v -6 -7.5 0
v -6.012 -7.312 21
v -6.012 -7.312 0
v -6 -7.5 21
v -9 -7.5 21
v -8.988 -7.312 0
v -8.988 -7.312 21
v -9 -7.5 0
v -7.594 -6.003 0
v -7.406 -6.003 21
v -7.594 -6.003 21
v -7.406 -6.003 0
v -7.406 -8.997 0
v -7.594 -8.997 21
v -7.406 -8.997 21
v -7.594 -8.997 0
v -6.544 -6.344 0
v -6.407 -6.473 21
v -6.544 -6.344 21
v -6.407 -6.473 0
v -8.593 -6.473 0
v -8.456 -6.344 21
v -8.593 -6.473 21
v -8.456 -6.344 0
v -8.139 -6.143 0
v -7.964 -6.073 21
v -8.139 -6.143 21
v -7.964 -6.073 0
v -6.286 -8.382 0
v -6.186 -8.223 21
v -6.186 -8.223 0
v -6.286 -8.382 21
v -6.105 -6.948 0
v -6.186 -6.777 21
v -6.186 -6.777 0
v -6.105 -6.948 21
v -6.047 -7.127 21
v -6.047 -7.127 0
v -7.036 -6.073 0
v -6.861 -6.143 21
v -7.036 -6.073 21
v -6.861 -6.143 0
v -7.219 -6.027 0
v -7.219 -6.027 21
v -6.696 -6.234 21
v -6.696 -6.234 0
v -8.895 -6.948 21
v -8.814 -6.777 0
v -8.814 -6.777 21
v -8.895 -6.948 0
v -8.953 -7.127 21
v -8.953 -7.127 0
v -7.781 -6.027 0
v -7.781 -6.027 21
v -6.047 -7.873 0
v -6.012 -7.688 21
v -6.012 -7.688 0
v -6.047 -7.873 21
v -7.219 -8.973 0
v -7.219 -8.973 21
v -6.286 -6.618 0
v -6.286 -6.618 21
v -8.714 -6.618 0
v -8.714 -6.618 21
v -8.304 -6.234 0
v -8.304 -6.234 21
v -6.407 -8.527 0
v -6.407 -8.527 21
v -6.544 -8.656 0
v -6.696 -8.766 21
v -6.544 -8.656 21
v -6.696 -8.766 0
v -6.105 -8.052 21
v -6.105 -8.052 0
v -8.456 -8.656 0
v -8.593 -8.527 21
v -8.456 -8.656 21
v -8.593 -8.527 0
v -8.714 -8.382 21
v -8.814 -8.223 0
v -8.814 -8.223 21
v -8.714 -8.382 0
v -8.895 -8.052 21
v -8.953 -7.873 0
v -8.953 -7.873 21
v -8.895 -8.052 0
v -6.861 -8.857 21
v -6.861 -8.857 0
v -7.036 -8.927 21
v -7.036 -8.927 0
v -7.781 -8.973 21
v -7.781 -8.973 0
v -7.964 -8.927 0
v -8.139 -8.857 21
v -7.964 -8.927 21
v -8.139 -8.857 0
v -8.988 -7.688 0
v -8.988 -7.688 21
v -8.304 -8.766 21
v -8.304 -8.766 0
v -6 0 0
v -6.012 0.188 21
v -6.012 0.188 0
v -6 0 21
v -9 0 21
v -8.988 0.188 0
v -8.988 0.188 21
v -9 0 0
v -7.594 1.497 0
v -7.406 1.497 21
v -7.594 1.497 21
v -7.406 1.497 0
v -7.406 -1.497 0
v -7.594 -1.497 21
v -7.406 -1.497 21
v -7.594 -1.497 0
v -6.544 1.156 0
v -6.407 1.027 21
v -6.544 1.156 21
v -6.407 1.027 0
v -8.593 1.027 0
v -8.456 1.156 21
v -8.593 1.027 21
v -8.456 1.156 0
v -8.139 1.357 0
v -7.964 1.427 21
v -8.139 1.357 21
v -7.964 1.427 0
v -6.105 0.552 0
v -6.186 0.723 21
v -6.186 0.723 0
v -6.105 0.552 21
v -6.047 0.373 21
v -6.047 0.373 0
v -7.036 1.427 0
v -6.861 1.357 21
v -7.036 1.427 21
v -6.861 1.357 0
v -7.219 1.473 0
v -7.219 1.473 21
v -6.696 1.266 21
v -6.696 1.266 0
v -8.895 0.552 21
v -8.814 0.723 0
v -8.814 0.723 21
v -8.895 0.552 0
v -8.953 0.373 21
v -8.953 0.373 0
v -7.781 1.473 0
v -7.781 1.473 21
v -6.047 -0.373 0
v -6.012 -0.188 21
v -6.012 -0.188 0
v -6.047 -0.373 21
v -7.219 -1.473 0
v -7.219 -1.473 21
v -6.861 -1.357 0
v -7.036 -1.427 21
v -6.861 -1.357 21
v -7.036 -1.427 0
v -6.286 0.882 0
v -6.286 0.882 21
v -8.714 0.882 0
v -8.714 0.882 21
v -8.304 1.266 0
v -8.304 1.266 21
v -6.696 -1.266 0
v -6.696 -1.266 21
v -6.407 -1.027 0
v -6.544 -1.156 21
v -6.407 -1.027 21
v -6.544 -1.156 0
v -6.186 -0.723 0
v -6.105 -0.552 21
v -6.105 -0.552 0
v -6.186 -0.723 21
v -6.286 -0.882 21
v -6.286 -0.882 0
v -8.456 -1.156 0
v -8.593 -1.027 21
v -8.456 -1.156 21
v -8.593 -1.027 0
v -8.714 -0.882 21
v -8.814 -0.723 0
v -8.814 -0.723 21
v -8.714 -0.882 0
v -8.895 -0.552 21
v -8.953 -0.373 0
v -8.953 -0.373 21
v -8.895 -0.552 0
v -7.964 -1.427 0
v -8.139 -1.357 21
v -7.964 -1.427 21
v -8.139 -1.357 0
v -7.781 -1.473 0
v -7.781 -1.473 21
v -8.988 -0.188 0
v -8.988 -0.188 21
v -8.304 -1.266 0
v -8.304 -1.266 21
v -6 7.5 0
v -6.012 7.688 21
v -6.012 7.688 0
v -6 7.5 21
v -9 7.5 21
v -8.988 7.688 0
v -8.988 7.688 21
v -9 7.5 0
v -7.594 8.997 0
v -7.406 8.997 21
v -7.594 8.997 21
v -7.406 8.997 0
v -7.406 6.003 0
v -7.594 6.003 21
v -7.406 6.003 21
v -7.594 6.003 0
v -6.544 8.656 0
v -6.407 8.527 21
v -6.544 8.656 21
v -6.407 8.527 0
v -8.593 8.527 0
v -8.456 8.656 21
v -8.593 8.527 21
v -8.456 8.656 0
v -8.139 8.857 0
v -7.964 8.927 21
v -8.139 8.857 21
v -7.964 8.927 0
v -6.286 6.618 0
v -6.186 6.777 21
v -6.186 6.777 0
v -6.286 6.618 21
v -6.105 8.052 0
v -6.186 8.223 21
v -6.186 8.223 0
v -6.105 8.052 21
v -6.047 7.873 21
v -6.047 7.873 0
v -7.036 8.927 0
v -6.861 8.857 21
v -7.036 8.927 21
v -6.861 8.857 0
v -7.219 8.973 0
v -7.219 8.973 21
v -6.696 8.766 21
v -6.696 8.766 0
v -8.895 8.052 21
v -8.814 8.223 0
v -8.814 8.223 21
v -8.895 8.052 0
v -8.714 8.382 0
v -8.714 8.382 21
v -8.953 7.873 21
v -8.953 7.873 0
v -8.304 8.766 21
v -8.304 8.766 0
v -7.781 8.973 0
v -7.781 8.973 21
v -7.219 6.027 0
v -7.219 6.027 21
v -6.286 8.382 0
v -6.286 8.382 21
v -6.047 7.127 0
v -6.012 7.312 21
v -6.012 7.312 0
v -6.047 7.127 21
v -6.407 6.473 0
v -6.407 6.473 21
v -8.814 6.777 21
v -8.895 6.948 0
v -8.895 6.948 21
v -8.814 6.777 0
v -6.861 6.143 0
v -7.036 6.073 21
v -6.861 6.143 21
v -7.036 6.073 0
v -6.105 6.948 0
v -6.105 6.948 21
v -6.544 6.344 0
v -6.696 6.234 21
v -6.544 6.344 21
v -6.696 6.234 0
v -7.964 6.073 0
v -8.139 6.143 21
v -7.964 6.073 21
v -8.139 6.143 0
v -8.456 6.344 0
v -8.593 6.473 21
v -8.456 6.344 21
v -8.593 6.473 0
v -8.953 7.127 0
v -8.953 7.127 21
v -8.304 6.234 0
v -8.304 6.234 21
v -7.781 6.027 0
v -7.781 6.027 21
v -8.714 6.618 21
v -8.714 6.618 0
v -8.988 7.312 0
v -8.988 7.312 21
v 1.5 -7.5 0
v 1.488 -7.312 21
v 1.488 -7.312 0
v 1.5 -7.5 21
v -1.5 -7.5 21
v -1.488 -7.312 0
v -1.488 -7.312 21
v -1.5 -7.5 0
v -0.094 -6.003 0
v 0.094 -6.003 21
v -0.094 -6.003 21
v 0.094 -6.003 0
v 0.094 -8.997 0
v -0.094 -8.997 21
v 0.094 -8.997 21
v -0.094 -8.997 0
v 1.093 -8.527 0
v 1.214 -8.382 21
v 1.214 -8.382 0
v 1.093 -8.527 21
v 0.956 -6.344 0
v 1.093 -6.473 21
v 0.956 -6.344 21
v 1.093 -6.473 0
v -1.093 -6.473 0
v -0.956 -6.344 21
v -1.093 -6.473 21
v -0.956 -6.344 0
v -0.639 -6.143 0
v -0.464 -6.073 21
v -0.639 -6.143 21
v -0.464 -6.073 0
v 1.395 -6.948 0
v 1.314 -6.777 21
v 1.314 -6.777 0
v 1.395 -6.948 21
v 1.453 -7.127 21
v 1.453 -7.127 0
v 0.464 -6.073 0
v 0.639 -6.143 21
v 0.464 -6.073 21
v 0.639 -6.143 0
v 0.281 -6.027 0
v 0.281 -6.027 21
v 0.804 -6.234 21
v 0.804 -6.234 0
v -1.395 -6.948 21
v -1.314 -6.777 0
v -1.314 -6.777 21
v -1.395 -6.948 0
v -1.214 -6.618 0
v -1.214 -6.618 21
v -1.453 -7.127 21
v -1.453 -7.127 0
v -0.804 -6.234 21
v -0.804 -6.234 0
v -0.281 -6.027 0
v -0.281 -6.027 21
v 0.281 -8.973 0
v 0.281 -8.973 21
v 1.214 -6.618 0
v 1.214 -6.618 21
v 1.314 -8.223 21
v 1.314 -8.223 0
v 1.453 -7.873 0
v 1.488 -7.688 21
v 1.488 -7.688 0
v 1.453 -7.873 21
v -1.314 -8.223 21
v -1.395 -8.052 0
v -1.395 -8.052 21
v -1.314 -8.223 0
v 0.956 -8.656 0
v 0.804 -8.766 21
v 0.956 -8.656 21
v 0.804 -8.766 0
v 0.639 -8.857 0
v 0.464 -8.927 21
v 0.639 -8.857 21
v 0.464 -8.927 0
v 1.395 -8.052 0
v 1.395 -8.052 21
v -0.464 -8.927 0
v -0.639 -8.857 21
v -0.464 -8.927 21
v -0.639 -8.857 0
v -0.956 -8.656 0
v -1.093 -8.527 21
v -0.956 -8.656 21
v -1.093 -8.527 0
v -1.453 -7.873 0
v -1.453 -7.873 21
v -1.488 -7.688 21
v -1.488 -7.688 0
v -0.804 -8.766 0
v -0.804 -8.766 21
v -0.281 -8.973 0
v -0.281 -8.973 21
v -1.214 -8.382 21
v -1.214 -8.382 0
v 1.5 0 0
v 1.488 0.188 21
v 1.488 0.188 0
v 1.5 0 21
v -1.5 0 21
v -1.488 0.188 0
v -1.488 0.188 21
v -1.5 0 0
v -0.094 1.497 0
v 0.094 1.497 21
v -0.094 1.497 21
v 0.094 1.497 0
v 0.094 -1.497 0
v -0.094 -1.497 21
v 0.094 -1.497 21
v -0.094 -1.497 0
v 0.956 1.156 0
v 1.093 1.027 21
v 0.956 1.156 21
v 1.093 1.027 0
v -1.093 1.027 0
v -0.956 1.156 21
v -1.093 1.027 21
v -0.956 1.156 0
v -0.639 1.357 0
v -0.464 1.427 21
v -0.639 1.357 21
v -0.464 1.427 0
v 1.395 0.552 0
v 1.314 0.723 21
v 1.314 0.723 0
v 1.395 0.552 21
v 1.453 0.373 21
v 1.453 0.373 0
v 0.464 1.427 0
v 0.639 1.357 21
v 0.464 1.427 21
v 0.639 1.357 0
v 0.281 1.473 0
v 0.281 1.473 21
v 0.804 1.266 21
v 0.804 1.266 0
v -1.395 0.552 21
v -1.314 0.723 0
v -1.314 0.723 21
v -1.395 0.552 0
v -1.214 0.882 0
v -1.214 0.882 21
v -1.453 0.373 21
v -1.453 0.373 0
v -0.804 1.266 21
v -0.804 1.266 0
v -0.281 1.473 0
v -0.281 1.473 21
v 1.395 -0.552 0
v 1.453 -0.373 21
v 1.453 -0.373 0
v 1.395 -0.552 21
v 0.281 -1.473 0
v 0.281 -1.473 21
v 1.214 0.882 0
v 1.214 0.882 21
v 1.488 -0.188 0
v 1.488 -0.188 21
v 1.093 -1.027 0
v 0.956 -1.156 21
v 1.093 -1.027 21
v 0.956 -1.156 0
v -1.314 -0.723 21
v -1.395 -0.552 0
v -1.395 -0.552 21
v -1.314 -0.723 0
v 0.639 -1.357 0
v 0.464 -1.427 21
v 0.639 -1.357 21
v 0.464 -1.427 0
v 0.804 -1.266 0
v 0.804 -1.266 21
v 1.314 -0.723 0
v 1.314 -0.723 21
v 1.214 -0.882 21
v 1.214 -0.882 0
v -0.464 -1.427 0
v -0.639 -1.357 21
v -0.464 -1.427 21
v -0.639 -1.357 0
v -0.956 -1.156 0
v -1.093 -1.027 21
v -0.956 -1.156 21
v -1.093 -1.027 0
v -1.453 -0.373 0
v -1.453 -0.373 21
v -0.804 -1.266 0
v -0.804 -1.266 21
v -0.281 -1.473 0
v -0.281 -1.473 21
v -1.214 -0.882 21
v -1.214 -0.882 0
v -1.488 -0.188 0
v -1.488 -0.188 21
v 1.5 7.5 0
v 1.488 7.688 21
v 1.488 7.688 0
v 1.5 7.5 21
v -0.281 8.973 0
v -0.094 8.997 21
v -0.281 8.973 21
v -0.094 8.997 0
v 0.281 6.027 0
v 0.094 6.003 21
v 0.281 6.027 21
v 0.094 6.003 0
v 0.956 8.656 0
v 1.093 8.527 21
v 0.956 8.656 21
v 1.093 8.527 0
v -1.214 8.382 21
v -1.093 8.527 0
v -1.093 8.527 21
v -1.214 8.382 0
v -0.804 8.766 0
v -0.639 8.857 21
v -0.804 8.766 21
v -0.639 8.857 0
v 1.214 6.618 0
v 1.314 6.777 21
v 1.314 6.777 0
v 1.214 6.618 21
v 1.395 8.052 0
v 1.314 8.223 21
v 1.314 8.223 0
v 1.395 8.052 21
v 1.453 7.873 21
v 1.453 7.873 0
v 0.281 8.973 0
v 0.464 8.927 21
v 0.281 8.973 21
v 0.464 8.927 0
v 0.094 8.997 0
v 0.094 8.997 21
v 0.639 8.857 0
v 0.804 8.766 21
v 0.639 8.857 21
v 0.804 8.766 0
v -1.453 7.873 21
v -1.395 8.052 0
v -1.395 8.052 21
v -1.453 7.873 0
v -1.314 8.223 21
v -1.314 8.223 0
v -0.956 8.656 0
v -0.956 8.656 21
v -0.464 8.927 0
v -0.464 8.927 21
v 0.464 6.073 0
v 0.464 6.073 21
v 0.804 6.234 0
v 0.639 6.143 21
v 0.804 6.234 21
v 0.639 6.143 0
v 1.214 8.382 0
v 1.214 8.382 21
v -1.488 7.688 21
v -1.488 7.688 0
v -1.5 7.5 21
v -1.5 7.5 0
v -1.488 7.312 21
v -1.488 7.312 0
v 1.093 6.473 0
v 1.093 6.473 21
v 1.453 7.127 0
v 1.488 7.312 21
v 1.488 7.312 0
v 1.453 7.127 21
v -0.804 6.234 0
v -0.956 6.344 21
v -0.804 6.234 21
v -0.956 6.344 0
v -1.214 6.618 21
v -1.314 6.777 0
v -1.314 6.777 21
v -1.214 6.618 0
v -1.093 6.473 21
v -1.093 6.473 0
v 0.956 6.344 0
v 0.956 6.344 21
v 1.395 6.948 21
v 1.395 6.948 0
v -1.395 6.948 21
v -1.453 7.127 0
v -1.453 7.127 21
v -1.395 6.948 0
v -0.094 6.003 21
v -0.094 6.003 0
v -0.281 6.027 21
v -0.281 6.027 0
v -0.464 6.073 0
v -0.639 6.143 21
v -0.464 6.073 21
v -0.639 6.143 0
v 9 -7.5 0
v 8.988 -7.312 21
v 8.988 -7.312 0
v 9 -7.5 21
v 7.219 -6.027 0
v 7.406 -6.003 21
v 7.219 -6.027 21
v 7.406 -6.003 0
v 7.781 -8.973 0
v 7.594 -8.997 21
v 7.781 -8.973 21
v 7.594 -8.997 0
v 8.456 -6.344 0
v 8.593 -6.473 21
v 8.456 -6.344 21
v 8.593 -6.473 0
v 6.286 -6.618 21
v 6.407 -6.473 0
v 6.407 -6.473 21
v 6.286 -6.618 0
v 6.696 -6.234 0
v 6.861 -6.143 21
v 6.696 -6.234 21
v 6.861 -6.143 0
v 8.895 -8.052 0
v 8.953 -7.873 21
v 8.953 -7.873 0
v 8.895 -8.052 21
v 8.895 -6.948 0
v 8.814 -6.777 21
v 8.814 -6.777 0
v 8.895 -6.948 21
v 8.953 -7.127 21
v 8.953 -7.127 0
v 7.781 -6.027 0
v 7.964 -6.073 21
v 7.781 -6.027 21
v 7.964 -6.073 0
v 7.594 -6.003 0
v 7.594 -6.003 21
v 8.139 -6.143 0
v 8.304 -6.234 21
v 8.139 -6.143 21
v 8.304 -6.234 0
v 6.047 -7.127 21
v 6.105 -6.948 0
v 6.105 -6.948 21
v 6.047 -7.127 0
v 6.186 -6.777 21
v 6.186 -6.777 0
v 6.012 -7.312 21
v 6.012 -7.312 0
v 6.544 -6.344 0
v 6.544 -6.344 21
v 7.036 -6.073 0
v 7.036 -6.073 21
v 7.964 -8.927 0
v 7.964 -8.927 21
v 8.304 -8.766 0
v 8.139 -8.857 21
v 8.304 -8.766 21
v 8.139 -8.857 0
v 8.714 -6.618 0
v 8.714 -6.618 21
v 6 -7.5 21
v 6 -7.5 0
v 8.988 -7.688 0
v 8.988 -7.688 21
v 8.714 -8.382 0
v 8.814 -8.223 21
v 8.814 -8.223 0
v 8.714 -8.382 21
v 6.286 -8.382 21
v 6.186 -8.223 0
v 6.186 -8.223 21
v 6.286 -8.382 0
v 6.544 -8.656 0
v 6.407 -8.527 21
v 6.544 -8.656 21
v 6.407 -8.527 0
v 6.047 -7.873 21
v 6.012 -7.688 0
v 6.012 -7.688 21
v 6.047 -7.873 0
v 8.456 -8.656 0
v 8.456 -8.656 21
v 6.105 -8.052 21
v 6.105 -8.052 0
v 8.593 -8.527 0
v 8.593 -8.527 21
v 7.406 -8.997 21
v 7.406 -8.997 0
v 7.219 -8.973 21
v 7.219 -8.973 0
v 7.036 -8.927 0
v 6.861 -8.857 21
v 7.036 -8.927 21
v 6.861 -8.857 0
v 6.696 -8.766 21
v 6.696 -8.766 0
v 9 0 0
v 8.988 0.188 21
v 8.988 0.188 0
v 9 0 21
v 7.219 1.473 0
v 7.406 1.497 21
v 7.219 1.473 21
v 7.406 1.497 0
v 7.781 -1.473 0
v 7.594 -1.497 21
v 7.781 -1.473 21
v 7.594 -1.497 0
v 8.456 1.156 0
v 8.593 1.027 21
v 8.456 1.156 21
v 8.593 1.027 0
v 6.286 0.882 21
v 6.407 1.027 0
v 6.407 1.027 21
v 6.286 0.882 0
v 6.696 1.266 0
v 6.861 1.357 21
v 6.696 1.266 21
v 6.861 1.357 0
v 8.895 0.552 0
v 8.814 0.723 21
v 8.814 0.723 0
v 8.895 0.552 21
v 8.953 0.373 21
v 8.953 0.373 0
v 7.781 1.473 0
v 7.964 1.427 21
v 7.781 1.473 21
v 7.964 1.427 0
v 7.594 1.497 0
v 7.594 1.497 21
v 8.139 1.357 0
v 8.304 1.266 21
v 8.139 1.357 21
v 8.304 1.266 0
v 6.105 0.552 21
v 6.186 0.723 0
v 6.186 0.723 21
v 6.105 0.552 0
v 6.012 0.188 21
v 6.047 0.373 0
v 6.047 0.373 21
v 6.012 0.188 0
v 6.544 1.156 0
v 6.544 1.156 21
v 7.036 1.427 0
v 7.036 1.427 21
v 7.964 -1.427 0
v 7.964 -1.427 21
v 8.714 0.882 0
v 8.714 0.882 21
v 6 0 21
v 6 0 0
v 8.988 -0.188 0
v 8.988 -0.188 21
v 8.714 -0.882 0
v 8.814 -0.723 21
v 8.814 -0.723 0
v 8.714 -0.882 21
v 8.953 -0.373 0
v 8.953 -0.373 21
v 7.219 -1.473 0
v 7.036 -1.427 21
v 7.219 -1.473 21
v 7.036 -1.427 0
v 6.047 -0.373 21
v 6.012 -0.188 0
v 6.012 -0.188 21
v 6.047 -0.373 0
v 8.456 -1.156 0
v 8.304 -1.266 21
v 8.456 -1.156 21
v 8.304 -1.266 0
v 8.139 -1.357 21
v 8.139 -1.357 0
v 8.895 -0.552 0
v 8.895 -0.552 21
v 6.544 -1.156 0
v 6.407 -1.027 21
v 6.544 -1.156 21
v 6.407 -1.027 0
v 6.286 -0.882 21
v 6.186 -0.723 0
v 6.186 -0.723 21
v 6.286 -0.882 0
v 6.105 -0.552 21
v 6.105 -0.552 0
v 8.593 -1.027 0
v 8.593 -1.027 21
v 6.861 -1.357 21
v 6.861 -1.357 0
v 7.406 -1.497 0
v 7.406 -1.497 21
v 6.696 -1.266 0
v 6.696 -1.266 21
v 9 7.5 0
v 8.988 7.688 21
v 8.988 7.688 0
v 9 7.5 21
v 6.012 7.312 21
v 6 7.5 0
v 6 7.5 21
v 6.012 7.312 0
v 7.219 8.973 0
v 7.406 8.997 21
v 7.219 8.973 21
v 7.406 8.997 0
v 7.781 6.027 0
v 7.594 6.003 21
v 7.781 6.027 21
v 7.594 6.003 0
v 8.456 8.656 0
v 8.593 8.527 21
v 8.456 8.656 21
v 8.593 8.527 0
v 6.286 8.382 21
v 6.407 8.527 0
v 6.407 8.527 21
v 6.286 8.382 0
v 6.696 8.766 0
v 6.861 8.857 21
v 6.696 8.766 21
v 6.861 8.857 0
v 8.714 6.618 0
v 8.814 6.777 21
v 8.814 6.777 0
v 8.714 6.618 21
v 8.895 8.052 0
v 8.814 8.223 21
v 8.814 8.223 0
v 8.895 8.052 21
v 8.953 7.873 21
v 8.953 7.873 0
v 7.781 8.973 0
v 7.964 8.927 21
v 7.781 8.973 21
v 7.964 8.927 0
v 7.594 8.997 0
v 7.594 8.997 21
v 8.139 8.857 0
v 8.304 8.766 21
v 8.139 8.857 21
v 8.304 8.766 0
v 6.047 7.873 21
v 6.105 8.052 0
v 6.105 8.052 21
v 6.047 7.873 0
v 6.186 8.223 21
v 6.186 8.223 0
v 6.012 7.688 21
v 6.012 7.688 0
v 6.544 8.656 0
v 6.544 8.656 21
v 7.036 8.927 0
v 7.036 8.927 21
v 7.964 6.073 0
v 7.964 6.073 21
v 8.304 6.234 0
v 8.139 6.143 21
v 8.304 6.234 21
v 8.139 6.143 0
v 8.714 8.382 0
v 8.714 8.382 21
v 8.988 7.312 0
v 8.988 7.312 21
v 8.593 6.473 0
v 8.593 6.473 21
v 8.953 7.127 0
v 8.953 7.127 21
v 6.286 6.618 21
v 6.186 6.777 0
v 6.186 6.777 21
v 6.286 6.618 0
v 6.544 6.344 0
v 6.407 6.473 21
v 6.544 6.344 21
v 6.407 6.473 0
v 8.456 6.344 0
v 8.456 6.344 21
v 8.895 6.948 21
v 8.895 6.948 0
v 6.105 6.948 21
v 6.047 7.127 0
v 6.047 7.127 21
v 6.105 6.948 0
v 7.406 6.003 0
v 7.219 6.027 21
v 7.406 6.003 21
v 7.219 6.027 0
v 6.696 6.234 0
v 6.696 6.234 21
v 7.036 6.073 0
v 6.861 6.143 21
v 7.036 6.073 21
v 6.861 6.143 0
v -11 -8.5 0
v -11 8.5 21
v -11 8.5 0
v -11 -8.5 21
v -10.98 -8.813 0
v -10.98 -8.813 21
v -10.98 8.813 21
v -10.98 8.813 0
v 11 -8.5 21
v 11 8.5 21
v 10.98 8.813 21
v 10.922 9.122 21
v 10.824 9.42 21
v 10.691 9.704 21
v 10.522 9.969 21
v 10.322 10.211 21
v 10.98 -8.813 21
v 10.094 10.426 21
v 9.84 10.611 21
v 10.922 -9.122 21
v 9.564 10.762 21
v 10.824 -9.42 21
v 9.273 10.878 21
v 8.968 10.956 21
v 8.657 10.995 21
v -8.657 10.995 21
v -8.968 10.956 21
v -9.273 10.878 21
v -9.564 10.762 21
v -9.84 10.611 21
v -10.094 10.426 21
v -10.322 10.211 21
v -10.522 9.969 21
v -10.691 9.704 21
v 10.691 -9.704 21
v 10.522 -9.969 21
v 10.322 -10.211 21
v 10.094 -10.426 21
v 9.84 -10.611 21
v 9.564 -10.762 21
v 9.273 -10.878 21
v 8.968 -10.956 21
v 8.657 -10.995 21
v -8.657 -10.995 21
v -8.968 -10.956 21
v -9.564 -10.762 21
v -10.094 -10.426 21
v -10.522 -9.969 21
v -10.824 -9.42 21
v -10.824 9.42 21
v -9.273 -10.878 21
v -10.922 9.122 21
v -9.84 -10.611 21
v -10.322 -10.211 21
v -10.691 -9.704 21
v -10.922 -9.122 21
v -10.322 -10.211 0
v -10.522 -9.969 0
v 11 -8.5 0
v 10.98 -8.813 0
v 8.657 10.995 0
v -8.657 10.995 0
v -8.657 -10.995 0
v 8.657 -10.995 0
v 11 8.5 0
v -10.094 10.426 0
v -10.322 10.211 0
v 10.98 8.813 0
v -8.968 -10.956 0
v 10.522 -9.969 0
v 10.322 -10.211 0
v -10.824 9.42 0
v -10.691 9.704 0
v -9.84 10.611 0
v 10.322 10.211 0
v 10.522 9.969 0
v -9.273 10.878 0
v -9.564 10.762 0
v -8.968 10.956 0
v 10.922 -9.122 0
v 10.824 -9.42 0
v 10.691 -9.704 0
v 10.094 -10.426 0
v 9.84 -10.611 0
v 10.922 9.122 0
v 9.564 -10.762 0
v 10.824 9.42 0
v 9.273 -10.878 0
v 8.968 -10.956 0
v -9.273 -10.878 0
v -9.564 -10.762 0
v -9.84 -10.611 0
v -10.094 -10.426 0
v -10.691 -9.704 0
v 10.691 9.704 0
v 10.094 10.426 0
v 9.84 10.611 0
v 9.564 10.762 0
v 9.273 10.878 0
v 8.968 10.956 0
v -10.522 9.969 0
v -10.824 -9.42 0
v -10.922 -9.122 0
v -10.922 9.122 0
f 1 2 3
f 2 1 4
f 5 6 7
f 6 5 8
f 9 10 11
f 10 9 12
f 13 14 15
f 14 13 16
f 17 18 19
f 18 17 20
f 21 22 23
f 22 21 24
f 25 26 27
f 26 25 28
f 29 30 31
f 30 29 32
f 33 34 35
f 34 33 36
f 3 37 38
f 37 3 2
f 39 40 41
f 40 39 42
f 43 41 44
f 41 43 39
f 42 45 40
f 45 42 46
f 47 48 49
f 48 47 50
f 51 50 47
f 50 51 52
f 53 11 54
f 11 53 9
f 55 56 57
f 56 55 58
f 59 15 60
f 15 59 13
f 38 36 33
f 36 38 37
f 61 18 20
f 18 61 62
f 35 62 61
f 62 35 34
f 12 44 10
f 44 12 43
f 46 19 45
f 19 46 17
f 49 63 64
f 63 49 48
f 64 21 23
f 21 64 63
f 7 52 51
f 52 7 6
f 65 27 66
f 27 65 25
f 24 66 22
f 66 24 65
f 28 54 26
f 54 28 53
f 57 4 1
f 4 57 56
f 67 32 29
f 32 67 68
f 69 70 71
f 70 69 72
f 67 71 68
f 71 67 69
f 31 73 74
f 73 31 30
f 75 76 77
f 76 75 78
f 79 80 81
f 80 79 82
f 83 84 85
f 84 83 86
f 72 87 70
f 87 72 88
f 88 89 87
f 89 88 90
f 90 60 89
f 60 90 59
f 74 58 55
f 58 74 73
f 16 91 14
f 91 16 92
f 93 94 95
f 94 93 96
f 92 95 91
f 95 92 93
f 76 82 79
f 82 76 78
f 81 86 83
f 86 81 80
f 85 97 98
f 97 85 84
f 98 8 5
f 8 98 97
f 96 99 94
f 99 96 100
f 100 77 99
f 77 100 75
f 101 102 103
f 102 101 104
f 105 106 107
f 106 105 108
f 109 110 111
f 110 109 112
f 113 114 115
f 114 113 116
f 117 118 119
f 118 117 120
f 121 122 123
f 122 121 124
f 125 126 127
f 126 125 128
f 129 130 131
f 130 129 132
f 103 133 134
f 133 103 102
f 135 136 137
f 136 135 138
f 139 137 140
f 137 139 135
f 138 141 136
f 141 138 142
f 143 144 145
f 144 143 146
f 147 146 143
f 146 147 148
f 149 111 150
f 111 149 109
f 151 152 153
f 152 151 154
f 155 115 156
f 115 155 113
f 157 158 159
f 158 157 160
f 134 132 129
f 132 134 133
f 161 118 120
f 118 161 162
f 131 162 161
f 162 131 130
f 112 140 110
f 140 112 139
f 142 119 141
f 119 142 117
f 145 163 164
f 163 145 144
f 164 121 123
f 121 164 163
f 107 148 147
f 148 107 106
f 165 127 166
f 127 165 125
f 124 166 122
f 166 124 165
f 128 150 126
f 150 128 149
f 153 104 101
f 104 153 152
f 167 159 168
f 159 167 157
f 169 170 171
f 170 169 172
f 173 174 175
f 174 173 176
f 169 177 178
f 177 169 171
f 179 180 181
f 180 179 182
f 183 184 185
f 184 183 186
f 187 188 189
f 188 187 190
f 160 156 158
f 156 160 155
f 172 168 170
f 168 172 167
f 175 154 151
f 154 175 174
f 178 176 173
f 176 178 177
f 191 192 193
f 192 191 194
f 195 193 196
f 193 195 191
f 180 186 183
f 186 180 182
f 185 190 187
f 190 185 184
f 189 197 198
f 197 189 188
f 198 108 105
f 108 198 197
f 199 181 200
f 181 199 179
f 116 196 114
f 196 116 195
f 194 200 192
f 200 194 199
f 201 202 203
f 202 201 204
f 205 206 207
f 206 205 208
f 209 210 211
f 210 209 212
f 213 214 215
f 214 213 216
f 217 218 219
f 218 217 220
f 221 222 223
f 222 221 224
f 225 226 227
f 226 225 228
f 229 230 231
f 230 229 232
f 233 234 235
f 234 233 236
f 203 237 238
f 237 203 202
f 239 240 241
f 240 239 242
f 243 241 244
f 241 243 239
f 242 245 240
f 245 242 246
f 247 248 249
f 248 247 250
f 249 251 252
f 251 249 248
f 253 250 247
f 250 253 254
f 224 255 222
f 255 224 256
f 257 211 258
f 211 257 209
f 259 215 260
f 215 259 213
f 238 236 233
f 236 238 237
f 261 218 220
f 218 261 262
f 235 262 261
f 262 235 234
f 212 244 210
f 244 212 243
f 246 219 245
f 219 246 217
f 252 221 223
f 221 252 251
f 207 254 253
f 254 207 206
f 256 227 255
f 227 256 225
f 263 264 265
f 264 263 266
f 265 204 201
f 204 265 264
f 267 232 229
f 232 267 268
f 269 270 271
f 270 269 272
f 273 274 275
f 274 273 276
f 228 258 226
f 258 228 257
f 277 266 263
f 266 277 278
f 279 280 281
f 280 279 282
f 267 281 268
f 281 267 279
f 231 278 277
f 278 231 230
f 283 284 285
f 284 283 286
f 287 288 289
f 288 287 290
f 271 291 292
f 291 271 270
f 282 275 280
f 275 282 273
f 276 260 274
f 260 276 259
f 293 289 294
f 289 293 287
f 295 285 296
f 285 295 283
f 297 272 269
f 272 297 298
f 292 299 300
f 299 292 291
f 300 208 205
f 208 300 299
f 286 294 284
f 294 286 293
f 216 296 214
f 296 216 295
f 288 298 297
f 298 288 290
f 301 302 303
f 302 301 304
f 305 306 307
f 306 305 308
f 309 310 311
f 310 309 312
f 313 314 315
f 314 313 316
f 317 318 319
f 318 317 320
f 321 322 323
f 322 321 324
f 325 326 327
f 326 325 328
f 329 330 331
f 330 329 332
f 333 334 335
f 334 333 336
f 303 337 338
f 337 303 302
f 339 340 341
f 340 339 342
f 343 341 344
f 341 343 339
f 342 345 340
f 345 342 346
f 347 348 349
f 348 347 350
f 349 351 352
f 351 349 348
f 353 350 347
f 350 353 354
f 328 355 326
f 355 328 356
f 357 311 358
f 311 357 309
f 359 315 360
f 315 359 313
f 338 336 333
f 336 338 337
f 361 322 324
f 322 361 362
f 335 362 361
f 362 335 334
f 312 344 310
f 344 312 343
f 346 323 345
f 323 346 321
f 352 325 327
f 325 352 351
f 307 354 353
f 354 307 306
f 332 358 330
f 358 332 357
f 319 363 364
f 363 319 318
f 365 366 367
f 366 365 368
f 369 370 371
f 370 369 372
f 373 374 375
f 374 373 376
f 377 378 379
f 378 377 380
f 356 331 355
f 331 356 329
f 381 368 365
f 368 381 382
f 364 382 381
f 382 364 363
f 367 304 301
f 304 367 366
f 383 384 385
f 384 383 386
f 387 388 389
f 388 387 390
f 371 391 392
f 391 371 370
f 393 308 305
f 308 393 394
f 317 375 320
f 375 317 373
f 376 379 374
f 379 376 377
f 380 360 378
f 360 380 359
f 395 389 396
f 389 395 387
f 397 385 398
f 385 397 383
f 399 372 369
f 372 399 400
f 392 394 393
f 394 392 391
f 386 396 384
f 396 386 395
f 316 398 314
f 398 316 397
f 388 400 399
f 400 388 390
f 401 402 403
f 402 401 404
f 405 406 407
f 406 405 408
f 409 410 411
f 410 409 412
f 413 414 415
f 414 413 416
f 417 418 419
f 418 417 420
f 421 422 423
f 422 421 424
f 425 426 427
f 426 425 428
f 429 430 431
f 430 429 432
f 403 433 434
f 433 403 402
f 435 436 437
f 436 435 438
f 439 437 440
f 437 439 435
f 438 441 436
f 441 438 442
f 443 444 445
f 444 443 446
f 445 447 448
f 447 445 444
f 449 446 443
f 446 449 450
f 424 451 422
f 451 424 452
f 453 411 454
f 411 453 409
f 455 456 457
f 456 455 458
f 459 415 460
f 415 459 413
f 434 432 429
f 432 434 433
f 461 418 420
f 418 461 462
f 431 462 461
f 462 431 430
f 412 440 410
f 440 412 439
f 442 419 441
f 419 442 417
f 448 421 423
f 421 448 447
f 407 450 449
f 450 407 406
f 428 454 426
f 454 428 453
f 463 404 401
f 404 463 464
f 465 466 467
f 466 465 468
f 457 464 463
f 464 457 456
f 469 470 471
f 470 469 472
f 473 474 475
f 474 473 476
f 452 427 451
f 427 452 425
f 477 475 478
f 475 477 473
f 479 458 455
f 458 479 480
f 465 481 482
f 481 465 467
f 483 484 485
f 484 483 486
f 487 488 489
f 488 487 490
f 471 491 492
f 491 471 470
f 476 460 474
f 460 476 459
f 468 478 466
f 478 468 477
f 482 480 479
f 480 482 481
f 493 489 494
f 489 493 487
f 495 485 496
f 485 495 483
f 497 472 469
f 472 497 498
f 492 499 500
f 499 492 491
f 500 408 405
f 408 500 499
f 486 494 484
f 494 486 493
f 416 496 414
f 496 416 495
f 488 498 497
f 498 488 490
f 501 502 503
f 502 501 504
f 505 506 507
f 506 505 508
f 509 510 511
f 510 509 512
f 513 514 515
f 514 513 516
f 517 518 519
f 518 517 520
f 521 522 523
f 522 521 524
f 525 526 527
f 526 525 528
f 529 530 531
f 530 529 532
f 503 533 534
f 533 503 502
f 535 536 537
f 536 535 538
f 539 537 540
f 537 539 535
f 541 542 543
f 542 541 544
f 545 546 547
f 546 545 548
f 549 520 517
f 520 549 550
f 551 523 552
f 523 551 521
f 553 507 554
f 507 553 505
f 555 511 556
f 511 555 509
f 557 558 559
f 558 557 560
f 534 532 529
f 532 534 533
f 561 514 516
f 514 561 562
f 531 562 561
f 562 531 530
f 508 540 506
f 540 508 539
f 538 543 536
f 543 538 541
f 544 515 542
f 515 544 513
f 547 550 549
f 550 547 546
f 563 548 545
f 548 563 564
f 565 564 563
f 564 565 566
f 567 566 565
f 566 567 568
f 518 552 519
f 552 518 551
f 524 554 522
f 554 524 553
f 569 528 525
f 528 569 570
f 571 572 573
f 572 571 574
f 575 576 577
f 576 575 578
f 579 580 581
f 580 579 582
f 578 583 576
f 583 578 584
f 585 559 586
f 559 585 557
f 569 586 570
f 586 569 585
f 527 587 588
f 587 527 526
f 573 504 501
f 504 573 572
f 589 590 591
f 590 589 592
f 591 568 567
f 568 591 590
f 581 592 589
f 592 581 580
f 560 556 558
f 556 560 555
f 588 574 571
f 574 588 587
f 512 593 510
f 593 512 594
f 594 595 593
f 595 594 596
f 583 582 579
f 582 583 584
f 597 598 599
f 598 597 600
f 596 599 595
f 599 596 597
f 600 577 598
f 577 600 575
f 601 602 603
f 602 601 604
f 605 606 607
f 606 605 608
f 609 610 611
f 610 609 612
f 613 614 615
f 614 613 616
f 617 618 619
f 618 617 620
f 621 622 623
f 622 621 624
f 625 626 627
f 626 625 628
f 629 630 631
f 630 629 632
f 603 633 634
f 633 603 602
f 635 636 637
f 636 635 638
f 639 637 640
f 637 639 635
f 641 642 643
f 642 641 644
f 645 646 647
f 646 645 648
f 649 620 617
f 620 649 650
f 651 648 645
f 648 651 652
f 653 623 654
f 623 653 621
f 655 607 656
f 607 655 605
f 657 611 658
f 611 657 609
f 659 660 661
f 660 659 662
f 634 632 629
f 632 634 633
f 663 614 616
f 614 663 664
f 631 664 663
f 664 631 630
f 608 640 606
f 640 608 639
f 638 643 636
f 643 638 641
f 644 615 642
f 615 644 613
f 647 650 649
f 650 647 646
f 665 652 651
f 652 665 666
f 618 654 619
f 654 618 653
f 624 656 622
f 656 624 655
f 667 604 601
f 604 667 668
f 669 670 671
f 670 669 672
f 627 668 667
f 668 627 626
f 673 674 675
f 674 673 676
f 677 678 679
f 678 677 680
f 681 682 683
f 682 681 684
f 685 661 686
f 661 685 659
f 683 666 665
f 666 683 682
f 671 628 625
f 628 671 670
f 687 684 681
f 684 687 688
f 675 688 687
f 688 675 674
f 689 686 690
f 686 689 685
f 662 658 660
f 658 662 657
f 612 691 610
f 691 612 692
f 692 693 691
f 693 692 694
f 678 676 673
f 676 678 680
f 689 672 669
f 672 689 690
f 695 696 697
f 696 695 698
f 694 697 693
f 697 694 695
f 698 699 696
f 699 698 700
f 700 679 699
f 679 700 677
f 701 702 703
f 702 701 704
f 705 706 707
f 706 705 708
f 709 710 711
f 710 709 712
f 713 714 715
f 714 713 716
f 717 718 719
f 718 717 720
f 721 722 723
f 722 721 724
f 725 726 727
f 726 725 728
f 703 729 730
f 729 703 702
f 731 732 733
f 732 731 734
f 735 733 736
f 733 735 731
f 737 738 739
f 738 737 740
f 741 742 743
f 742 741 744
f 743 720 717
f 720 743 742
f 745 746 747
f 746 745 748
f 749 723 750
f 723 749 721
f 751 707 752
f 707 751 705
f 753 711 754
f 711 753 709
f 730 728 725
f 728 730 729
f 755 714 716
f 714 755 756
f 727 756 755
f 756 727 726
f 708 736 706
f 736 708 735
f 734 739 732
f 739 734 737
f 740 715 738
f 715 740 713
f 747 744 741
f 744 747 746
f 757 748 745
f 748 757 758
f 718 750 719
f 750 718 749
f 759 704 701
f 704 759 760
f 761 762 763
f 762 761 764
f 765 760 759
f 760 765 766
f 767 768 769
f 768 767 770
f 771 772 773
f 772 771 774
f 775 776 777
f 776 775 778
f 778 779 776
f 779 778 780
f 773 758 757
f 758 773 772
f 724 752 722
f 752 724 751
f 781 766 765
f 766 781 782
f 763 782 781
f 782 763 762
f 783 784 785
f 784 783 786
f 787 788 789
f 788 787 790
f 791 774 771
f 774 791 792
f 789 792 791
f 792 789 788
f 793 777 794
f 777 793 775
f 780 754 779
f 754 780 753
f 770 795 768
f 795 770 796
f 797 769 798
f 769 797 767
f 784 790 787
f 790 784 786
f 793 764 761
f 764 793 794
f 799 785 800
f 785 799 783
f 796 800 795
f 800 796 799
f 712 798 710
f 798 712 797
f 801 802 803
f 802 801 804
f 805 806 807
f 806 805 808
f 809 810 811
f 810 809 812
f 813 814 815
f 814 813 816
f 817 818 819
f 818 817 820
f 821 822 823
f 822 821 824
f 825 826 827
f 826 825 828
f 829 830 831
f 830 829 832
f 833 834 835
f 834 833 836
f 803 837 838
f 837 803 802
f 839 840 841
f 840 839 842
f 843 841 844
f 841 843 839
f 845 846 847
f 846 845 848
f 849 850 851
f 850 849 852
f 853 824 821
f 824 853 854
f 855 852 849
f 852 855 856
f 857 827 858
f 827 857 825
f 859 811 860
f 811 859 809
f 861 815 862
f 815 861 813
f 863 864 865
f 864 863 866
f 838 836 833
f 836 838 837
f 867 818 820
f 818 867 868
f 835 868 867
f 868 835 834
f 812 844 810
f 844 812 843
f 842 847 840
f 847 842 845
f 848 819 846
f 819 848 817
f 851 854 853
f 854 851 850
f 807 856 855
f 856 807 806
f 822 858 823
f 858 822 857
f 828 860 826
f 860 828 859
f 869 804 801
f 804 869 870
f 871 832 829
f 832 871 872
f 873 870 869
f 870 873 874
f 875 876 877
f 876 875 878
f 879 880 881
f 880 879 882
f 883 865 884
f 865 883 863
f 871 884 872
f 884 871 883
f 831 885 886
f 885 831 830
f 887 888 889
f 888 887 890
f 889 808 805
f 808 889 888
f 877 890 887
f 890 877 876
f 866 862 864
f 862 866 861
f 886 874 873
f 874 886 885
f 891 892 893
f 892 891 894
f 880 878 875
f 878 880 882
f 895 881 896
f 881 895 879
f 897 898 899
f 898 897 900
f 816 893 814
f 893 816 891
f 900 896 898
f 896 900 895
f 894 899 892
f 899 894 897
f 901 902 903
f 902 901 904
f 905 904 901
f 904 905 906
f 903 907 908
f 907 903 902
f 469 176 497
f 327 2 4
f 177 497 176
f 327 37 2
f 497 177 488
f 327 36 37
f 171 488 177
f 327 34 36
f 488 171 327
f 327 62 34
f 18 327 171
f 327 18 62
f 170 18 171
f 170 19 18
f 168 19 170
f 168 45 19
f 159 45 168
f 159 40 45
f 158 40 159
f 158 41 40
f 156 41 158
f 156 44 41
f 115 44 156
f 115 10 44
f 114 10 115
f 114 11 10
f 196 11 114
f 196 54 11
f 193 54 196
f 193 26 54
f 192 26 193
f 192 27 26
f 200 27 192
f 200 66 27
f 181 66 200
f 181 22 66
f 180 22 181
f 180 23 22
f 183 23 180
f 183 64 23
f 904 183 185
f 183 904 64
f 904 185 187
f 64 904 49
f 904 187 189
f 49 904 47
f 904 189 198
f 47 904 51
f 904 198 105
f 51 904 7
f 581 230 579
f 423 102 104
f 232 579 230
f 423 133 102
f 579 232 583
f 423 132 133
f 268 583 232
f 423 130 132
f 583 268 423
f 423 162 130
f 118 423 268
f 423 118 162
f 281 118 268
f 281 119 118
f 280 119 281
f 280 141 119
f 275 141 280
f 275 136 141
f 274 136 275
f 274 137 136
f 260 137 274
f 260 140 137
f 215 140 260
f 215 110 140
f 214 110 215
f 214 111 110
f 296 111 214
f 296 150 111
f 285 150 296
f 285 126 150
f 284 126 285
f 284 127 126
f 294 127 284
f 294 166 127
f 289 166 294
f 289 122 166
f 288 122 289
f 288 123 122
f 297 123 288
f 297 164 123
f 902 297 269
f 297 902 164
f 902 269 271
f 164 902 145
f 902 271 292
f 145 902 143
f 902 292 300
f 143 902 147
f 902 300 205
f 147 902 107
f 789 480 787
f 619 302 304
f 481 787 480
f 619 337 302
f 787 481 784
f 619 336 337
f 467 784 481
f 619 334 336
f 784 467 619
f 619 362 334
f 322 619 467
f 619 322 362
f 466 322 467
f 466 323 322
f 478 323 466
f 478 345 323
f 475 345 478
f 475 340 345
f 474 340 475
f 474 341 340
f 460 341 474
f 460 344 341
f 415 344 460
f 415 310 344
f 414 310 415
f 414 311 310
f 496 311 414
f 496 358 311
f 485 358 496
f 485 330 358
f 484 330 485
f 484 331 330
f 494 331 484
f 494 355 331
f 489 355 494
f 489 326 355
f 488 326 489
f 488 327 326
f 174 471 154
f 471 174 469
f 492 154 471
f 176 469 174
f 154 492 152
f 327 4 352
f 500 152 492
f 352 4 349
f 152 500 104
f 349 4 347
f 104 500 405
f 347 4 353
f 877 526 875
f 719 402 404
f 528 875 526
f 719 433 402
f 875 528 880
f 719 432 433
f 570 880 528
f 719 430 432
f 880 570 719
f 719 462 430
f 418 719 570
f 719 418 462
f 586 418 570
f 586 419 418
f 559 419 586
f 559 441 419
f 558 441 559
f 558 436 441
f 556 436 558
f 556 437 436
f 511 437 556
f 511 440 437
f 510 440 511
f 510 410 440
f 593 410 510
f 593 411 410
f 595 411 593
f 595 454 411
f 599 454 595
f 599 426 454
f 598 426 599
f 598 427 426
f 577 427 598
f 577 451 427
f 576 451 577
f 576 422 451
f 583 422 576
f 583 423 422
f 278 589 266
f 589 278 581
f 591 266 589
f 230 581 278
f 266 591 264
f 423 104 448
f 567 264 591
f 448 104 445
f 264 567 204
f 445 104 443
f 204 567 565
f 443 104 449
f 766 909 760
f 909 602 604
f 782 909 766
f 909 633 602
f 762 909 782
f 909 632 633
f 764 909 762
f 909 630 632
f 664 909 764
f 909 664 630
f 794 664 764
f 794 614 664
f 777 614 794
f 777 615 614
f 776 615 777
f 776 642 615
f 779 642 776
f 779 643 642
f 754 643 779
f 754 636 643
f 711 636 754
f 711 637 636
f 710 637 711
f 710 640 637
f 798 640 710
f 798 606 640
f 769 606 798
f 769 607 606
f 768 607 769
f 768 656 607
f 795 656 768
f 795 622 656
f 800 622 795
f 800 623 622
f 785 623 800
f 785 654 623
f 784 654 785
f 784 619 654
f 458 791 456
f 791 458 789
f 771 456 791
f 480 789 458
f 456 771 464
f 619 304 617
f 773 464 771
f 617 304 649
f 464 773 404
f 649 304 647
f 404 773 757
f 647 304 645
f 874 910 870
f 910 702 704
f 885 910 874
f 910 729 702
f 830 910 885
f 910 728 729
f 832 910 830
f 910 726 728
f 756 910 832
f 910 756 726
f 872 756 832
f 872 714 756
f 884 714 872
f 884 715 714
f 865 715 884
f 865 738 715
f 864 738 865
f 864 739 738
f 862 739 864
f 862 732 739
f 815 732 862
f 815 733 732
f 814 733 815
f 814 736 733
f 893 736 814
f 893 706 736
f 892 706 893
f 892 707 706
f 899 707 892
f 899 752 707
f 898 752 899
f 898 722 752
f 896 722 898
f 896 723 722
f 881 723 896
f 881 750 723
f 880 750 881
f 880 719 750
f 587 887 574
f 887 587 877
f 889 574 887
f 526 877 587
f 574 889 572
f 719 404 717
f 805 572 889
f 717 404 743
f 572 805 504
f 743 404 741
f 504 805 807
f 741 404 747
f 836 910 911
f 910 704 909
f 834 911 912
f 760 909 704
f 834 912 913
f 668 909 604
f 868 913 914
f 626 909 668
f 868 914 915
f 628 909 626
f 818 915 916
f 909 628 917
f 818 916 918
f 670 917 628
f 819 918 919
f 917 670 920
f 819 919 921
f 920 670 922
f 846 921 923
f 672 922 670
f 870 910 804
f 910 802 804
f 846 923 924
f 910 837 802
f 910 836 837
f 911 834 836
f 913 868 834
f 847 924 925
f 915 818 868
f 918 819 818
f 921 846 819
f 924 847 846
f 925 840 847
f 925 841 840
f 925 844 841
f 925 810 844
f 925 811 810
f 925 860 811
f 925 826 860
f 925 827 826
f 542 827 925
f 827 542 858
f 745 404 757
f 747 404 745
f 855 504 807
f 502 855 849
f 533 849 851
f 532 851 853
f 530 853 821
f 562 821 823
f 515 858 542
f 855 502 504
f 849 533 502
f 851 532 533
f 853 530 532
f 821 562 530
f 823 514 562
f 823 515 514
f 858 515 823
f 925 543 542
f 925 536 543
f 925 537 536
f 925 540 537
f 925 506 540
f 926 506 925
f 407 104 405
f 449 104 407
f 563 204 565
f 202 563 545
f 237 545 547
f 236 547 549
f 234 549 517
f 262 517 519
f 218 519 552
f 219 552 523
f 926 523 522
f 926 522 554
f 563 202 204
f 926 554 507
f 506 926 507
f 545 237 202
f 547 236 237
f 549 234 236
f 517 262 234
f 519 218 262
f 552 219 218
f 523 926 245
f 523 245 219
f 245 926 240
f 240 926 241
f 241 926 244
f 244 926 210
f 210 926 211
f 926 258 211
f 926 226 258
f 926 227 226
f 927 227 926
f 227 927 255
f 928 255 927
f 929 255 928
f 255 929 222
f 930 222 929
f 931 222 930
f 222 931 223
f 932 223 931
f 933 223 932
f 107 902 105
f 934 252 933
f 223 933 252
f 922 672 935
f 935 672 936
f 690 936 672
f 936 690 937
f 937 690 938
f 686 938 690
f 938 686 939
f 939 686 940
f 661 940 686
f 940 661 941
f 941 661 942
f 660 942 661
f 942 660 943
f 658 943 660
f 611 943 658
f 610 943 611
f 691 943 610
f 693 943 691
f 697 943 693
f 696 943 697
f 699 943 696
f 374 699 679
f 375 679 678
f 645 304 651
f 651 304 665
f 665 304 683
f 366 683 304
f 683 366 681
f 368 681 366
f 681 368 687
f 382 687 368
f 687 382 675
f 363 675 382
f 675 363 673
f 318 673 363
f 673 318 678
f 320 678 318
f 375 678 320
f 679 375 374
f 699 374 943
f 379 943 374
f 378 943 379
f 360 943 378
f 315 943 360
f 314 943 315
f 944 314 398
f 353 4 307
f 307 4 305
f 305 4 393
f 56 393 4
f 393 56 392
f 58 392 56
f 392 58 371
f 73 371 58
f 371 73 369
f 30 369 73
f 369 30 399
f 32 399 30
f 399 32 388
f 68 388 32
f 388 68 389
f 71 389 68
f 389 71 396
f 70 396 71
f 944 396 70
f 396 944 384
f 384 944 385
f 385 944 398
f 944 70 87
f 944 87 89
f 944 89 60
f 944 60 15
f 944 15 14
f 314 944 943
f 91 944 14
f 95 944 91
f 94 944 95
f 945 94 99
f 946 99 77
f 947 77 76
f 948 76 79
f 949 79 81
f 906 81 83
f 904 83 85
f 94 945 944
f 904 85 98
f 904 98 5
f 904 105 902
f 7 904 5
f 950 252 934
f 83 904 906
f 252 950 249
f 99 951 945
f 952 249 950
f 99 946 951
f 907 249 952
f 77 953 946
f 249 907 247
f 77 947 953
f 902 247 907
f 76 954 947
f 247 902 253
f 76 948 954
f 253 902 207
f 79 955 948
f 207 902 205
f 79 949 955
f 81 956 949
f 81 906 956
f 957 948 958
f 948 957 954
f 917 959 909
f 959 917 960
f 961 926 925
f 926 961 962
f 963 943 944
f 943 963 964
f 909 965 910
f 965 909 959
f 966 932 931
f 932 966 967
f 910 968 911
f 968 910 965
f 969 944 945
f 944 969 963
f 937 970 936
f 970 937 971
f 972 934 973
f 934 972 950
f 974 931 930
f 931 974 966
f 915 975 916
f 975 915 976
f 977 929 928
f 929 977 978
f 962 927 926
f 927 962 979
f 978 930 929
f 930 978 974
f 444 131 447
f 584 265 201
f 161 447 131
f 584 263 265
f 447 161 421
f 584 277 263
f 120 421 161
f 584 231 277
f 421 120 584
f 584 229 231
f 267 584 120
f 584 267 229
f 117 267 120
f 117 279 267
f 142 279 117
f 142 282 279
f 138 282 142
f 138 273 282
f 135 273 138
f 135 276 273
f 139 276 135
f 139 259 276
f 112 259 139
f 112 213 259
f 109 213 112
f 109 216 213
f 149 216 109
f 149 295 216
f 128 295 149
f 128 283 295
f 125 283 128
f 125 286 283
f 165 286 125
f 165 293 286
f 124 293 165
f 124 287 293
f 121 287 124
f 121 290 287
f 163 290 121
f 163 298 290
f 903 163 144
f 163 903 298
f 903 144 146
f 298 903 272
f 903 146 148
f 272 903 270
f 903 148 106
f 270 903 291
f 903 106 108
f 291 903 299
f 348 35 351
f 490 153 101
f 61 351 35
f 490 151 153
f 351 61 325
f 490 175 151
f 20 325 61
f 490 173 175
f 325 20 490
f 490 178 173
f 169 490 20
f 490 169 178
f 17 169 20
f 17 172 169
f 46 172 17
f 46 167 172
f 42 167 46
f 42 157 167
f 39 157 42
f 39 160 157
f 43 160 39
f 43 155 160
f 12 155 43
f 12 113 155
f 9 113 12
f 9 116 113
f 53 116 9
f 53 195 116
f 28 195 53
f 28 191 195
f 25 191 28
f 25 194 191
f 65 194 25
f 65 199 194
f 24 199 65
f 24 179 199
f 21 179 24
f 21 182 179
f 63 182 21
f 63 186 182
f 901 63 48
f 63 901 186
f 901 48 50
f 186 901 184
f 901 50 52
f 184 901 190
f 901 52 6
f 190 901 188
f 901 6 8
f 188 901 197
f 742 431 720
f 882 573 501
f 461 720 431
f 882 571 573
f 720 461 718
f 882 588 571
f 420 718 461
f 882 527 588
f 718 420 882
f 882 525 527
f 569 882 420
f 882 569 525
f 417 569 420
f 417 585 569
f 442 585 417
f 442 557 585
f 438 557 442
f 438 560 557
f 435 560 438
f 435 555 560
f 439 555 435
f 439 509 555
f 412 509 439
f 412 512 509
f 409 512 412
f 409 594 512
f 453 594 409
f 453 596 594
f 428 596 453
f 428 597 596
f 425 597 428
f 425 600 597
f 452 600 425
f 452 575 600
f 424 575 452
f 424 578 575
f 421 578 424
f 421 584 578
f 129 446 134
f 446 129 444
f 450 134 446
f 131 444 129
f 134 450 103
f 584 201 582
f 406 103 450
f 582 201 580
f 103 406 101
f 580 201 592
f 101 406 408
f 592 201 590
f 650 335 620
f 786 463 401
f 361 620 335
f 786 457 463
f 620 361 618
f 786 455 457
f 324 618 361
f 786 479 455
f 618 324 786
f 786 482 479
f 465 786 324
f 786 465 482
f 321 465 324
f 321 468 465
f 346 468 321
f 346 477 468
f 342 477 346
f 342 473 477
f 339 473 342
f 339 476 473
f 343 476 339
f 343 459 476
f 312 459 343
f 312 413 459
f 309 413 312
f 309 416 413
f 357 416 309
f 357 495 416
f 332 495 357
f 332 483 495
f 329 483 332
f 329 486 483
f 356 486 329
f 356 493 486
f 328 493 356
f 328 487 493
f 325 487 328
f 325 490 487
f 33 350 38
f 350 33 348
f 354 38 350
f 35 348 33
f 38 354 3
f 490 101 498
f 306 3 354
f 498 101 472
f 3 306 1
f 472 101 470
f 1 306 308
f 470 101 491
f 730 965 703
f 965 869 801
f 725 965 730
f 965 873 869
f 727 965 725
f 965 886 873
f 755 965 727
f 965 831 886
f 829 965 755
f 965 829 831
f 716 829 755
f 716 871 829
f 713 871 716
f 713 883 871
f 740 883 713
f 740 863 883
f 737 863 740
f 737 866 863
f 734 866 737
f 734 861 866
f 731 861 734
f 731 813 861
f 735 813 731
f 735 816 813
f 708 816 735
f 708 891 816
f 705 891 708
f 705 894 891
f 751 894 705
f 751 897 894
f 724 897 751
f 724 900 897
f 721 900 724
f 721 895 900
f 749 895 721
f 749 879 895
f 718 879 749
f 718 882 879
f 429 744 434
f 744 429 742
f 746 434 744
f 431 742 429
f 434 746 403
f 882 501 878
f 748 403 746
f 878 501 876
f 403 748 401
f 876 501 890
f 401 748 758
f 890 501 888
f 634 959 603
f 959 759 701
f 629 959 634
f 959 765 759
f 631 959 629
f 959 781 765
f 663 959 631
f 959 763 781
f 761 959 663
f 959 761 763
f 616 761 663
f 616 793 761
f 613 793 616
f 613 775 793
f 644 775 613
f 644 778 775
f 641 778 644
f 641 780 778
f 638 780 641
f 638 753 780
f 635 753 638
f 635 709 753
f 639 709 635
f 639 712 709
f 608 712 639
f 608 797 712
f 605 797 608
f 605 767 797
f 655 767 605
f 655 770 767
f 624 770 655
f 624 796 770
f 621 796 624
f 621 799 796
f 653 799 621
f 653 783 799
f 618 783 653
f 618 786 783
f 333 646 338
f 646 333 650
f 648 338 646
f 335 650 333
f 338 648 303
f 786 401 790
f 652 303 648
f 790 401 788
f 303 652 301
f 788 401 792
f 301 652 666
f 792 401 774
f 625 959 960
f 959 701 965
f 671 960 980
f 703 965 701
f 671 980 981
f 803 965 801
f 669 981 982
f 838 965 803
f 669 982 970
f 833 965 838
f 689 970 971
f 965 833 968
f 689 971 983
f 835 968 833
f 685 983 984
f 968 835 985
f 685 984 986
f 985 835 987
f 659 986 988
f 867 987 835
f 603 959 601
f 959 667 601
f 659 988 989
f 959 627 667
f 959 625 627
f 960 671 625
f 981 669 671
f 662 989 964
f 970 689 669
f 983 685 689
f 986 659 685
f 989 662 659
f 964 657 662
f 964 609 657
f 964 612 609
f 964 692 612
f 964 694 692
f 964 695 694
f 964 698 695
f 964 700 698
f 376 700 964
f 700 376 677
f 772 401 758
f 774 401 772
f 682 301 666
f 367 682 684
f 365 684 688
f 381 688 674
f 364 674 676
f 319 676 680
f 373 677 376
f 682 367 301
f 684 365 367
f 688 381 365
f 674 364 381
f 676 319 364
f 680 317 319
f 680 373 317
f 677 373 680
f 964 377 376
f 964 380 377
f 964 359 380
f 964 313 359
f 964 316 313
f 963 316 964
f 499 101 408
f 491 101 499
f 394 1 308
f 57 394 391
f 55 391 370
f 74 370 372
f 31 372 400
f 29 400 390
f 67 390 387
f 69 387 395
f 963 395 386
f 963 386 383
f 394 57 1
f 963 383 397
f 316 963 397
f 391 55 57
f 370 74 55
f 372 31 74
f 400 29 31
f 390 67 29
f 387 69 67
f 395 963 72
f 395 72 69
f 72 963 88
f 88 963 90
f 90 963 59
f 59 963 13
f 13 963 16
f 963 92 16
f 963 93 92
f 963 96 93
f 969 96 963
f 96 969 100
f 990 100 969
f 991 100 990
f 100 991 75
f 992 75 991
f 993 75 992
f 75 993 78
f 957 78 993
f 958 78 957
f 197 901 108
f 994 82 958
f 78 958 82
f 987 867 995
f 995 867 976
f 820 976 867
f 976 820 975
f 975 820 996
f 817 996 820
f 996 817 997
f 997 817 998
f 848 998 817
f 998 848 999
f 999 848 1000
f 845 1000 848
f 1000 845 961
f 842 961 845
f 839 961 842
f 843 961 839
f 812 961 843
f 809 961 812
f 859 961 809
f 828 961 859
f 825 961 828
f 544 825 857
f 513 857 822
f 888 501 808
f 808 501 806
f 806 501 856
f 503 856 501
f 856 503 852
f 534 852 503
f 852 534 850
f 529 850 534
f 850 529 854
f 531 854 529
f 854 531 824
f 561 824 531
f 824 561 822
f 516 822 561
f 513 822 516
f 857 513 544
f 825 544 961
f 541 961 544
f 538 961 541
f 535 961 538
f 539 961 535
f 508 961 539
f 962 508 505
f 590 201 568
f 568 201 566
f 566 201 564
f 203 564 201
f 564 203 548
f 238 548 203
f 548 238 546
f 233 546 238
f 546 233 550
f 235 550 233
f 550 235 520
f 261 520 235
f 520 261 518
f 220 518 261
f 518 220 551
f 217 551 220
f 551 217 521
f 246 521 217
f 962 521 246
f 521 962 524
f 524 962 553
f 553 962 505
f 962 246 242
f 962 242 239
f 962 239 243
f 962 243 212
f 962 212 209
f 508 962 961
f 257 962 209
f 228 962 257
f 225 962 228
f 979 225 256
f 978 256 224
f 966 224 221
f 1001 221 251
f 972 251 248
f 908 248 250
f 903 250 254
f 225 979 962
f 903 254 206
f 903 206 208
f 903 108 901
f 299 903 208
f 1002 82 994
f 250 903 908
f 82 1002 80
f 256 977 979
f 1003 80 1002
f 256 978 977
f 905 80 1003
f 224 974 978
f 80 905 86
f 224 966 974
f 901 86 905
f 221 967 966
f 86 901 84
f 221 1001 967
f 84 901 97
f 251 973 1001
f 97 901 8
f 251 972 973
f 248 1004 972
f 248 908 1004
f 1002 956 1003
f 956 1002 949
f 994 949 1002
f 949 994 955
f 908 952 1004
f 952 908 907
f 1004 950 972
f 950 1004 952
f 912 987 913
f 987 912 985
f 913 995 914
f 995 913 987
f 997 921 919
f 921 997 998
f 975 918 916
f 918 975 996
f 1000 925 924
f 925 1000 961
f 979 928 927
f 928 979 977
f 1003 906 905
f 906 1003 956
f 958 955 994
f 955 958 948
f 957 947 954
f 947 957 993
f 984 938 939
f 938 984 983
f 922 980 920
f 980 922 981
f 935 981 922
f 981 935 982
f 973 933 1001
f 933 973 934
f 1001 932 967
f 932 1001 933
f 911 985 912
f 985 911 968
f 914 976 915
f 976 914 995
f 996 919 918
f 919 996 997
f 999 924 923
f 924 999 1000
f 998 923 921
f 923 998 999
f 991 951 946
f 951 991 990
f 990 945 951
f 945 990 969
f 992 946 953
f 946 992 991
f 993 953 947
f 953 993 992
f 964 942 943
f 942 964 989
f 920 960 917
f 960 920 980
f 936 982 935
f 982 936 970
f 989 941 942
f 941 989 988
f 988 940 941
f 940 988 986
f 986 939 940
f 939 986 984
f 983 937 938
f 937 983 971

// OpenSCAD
$fn = 50;


difference() {
	union() {
		translate(v = [0, 0, 0]) {
			rotate(a = [0, 0, 0]) {
				hull() {
					translate(v = [-8.5000000000, 8.5000000000, 0]) {
						rotate(a = [0, 0, 0]) {
							translate(v = [0, 0, 0]) {
								rotate(a = [0, 0, 0]) {
									cylinder(h = 21, r = 2.5000000000);
								}
							}
						}
					}
					translate(v = [8.5000000000, 8.5000000000, 0]) {
						rotate(a = [0, 0, 0]) {
							translate(v = [0, 0, 0]) {
								rotate(a = [0, 0, 0]) {
									cylinder(h = 21, r = 2.5000000000);
								}
							}
						}
					}
					translate(v = [-8.5000000000, -8.5000000000, 0]) {
						rotate(a = [0, 0, 0]) {
							translate(v = [0, 0, 0]) {
								rotate(a = [0, 0, 0]) {
									cylinder(h = 21, r = 2.5000000000);
								}
							}
						}
					}
					translate(v = [8.5000000000, -8.5000000000, 0]) {
						rotate(a = [0, 0, 0]) {
							translate(v = [0, 0, 0]) {
								rotate(a = [0, 0, 0]) {
									cylinder(h = 21, r = 2.5000000000);
								}
							}
						}
					}
				}
			}
		}
	}
	union() {
		translate(v = [-7.5000000000, -7.5000000000, 0]) {
			rotate(a = [0, 0, 0]) {
				translate(v = [0, 0, -50]) {
					rotate(a = [0, 0, 0]) {
						cylinder(h = 100, r = 1.5000000000);
					}
				}
			}
		}
		translate(v = [-7.5000000000, 0.0000000000, 0]) {
			rotate(a = [0, 0, 0]) {
				translate(v = [0, 0, -50]) {
					rotate(a = [0, 0, 0]) {
						cylinder(h = 100, r = 1.5000000000);
					}
				}
			}
		}
		translate(v = [-7.5000000000, 7.5000000000, 0]) {
			rotate(a = [0, 0, 0]) {
				translate(v = [0, 0, -50]) {
					rotate(a = [0, 0, 0]) {
						cylinder(h = 100, r = 1.5000000000);
					}
				}
			}
		}
		translate(v = [0.0000000000, -7.5000000000, 0]) {
			rotate(a = [0, 0, 0]) {
				translate(v = [0, 0, -50]) {
					rotate(a = [0, 0, 0]) {
						cylinder(h = 100, r = 1.5000000000);
					}
				}
			}
		}
		translate(v = [0.0000000000, 0.0000000000, 0]) {
			rotate(a = [0, 0, 0]) {
				translate(v = [0, 0, -50]) {
					rotate(a = [0, 0, 0]) {
						cylinder(h = 100, r = 1.5000000000);
					}
				}
			}
		}
		translate(v = [0.0000000000, 7.5000000000, 0]) {
			rotate(a = [0, 0, 0]) {
				translate(v = [0, 0, -50]) {
					rotate(a = [0, 0, 0]) {
						cylinder(h = 100, r = 1.5000000000);
					}
				}
			}
		}
		translate(v = [7.5000000000, -7.5000000000, 0]) {
			rotate(a = [0, 0, 0]) {
				translate(v = [0, 0, -50]) {
					rotate(a = [0, 0, 0]) {
						cylinder(h = 100, r = 1.5000000000);
					}
				}
			}
		}
		translate(v = [7.5000000000, 0.0000000000, 0]) {
			rotate(a = [0, 0, 0]) {
				translate(v = [0, 0, -50]) {
					rotate(a = [0, 0, 0]) {
						cylinder(h = 100, r = 1.5000000000);
					}
				}
			}
		}
		translate(v = [7.5000000000, 7.5000000000, 0]) {
			rotate(a = [0, 0, 0]) {
				translate(v = [0, 0, -50]) {
					rotate(a = [0, 0, 0]) {
						cylinder(h = 100, r = 1.5000000000);
					}
				}
			}
		}
	}
}
